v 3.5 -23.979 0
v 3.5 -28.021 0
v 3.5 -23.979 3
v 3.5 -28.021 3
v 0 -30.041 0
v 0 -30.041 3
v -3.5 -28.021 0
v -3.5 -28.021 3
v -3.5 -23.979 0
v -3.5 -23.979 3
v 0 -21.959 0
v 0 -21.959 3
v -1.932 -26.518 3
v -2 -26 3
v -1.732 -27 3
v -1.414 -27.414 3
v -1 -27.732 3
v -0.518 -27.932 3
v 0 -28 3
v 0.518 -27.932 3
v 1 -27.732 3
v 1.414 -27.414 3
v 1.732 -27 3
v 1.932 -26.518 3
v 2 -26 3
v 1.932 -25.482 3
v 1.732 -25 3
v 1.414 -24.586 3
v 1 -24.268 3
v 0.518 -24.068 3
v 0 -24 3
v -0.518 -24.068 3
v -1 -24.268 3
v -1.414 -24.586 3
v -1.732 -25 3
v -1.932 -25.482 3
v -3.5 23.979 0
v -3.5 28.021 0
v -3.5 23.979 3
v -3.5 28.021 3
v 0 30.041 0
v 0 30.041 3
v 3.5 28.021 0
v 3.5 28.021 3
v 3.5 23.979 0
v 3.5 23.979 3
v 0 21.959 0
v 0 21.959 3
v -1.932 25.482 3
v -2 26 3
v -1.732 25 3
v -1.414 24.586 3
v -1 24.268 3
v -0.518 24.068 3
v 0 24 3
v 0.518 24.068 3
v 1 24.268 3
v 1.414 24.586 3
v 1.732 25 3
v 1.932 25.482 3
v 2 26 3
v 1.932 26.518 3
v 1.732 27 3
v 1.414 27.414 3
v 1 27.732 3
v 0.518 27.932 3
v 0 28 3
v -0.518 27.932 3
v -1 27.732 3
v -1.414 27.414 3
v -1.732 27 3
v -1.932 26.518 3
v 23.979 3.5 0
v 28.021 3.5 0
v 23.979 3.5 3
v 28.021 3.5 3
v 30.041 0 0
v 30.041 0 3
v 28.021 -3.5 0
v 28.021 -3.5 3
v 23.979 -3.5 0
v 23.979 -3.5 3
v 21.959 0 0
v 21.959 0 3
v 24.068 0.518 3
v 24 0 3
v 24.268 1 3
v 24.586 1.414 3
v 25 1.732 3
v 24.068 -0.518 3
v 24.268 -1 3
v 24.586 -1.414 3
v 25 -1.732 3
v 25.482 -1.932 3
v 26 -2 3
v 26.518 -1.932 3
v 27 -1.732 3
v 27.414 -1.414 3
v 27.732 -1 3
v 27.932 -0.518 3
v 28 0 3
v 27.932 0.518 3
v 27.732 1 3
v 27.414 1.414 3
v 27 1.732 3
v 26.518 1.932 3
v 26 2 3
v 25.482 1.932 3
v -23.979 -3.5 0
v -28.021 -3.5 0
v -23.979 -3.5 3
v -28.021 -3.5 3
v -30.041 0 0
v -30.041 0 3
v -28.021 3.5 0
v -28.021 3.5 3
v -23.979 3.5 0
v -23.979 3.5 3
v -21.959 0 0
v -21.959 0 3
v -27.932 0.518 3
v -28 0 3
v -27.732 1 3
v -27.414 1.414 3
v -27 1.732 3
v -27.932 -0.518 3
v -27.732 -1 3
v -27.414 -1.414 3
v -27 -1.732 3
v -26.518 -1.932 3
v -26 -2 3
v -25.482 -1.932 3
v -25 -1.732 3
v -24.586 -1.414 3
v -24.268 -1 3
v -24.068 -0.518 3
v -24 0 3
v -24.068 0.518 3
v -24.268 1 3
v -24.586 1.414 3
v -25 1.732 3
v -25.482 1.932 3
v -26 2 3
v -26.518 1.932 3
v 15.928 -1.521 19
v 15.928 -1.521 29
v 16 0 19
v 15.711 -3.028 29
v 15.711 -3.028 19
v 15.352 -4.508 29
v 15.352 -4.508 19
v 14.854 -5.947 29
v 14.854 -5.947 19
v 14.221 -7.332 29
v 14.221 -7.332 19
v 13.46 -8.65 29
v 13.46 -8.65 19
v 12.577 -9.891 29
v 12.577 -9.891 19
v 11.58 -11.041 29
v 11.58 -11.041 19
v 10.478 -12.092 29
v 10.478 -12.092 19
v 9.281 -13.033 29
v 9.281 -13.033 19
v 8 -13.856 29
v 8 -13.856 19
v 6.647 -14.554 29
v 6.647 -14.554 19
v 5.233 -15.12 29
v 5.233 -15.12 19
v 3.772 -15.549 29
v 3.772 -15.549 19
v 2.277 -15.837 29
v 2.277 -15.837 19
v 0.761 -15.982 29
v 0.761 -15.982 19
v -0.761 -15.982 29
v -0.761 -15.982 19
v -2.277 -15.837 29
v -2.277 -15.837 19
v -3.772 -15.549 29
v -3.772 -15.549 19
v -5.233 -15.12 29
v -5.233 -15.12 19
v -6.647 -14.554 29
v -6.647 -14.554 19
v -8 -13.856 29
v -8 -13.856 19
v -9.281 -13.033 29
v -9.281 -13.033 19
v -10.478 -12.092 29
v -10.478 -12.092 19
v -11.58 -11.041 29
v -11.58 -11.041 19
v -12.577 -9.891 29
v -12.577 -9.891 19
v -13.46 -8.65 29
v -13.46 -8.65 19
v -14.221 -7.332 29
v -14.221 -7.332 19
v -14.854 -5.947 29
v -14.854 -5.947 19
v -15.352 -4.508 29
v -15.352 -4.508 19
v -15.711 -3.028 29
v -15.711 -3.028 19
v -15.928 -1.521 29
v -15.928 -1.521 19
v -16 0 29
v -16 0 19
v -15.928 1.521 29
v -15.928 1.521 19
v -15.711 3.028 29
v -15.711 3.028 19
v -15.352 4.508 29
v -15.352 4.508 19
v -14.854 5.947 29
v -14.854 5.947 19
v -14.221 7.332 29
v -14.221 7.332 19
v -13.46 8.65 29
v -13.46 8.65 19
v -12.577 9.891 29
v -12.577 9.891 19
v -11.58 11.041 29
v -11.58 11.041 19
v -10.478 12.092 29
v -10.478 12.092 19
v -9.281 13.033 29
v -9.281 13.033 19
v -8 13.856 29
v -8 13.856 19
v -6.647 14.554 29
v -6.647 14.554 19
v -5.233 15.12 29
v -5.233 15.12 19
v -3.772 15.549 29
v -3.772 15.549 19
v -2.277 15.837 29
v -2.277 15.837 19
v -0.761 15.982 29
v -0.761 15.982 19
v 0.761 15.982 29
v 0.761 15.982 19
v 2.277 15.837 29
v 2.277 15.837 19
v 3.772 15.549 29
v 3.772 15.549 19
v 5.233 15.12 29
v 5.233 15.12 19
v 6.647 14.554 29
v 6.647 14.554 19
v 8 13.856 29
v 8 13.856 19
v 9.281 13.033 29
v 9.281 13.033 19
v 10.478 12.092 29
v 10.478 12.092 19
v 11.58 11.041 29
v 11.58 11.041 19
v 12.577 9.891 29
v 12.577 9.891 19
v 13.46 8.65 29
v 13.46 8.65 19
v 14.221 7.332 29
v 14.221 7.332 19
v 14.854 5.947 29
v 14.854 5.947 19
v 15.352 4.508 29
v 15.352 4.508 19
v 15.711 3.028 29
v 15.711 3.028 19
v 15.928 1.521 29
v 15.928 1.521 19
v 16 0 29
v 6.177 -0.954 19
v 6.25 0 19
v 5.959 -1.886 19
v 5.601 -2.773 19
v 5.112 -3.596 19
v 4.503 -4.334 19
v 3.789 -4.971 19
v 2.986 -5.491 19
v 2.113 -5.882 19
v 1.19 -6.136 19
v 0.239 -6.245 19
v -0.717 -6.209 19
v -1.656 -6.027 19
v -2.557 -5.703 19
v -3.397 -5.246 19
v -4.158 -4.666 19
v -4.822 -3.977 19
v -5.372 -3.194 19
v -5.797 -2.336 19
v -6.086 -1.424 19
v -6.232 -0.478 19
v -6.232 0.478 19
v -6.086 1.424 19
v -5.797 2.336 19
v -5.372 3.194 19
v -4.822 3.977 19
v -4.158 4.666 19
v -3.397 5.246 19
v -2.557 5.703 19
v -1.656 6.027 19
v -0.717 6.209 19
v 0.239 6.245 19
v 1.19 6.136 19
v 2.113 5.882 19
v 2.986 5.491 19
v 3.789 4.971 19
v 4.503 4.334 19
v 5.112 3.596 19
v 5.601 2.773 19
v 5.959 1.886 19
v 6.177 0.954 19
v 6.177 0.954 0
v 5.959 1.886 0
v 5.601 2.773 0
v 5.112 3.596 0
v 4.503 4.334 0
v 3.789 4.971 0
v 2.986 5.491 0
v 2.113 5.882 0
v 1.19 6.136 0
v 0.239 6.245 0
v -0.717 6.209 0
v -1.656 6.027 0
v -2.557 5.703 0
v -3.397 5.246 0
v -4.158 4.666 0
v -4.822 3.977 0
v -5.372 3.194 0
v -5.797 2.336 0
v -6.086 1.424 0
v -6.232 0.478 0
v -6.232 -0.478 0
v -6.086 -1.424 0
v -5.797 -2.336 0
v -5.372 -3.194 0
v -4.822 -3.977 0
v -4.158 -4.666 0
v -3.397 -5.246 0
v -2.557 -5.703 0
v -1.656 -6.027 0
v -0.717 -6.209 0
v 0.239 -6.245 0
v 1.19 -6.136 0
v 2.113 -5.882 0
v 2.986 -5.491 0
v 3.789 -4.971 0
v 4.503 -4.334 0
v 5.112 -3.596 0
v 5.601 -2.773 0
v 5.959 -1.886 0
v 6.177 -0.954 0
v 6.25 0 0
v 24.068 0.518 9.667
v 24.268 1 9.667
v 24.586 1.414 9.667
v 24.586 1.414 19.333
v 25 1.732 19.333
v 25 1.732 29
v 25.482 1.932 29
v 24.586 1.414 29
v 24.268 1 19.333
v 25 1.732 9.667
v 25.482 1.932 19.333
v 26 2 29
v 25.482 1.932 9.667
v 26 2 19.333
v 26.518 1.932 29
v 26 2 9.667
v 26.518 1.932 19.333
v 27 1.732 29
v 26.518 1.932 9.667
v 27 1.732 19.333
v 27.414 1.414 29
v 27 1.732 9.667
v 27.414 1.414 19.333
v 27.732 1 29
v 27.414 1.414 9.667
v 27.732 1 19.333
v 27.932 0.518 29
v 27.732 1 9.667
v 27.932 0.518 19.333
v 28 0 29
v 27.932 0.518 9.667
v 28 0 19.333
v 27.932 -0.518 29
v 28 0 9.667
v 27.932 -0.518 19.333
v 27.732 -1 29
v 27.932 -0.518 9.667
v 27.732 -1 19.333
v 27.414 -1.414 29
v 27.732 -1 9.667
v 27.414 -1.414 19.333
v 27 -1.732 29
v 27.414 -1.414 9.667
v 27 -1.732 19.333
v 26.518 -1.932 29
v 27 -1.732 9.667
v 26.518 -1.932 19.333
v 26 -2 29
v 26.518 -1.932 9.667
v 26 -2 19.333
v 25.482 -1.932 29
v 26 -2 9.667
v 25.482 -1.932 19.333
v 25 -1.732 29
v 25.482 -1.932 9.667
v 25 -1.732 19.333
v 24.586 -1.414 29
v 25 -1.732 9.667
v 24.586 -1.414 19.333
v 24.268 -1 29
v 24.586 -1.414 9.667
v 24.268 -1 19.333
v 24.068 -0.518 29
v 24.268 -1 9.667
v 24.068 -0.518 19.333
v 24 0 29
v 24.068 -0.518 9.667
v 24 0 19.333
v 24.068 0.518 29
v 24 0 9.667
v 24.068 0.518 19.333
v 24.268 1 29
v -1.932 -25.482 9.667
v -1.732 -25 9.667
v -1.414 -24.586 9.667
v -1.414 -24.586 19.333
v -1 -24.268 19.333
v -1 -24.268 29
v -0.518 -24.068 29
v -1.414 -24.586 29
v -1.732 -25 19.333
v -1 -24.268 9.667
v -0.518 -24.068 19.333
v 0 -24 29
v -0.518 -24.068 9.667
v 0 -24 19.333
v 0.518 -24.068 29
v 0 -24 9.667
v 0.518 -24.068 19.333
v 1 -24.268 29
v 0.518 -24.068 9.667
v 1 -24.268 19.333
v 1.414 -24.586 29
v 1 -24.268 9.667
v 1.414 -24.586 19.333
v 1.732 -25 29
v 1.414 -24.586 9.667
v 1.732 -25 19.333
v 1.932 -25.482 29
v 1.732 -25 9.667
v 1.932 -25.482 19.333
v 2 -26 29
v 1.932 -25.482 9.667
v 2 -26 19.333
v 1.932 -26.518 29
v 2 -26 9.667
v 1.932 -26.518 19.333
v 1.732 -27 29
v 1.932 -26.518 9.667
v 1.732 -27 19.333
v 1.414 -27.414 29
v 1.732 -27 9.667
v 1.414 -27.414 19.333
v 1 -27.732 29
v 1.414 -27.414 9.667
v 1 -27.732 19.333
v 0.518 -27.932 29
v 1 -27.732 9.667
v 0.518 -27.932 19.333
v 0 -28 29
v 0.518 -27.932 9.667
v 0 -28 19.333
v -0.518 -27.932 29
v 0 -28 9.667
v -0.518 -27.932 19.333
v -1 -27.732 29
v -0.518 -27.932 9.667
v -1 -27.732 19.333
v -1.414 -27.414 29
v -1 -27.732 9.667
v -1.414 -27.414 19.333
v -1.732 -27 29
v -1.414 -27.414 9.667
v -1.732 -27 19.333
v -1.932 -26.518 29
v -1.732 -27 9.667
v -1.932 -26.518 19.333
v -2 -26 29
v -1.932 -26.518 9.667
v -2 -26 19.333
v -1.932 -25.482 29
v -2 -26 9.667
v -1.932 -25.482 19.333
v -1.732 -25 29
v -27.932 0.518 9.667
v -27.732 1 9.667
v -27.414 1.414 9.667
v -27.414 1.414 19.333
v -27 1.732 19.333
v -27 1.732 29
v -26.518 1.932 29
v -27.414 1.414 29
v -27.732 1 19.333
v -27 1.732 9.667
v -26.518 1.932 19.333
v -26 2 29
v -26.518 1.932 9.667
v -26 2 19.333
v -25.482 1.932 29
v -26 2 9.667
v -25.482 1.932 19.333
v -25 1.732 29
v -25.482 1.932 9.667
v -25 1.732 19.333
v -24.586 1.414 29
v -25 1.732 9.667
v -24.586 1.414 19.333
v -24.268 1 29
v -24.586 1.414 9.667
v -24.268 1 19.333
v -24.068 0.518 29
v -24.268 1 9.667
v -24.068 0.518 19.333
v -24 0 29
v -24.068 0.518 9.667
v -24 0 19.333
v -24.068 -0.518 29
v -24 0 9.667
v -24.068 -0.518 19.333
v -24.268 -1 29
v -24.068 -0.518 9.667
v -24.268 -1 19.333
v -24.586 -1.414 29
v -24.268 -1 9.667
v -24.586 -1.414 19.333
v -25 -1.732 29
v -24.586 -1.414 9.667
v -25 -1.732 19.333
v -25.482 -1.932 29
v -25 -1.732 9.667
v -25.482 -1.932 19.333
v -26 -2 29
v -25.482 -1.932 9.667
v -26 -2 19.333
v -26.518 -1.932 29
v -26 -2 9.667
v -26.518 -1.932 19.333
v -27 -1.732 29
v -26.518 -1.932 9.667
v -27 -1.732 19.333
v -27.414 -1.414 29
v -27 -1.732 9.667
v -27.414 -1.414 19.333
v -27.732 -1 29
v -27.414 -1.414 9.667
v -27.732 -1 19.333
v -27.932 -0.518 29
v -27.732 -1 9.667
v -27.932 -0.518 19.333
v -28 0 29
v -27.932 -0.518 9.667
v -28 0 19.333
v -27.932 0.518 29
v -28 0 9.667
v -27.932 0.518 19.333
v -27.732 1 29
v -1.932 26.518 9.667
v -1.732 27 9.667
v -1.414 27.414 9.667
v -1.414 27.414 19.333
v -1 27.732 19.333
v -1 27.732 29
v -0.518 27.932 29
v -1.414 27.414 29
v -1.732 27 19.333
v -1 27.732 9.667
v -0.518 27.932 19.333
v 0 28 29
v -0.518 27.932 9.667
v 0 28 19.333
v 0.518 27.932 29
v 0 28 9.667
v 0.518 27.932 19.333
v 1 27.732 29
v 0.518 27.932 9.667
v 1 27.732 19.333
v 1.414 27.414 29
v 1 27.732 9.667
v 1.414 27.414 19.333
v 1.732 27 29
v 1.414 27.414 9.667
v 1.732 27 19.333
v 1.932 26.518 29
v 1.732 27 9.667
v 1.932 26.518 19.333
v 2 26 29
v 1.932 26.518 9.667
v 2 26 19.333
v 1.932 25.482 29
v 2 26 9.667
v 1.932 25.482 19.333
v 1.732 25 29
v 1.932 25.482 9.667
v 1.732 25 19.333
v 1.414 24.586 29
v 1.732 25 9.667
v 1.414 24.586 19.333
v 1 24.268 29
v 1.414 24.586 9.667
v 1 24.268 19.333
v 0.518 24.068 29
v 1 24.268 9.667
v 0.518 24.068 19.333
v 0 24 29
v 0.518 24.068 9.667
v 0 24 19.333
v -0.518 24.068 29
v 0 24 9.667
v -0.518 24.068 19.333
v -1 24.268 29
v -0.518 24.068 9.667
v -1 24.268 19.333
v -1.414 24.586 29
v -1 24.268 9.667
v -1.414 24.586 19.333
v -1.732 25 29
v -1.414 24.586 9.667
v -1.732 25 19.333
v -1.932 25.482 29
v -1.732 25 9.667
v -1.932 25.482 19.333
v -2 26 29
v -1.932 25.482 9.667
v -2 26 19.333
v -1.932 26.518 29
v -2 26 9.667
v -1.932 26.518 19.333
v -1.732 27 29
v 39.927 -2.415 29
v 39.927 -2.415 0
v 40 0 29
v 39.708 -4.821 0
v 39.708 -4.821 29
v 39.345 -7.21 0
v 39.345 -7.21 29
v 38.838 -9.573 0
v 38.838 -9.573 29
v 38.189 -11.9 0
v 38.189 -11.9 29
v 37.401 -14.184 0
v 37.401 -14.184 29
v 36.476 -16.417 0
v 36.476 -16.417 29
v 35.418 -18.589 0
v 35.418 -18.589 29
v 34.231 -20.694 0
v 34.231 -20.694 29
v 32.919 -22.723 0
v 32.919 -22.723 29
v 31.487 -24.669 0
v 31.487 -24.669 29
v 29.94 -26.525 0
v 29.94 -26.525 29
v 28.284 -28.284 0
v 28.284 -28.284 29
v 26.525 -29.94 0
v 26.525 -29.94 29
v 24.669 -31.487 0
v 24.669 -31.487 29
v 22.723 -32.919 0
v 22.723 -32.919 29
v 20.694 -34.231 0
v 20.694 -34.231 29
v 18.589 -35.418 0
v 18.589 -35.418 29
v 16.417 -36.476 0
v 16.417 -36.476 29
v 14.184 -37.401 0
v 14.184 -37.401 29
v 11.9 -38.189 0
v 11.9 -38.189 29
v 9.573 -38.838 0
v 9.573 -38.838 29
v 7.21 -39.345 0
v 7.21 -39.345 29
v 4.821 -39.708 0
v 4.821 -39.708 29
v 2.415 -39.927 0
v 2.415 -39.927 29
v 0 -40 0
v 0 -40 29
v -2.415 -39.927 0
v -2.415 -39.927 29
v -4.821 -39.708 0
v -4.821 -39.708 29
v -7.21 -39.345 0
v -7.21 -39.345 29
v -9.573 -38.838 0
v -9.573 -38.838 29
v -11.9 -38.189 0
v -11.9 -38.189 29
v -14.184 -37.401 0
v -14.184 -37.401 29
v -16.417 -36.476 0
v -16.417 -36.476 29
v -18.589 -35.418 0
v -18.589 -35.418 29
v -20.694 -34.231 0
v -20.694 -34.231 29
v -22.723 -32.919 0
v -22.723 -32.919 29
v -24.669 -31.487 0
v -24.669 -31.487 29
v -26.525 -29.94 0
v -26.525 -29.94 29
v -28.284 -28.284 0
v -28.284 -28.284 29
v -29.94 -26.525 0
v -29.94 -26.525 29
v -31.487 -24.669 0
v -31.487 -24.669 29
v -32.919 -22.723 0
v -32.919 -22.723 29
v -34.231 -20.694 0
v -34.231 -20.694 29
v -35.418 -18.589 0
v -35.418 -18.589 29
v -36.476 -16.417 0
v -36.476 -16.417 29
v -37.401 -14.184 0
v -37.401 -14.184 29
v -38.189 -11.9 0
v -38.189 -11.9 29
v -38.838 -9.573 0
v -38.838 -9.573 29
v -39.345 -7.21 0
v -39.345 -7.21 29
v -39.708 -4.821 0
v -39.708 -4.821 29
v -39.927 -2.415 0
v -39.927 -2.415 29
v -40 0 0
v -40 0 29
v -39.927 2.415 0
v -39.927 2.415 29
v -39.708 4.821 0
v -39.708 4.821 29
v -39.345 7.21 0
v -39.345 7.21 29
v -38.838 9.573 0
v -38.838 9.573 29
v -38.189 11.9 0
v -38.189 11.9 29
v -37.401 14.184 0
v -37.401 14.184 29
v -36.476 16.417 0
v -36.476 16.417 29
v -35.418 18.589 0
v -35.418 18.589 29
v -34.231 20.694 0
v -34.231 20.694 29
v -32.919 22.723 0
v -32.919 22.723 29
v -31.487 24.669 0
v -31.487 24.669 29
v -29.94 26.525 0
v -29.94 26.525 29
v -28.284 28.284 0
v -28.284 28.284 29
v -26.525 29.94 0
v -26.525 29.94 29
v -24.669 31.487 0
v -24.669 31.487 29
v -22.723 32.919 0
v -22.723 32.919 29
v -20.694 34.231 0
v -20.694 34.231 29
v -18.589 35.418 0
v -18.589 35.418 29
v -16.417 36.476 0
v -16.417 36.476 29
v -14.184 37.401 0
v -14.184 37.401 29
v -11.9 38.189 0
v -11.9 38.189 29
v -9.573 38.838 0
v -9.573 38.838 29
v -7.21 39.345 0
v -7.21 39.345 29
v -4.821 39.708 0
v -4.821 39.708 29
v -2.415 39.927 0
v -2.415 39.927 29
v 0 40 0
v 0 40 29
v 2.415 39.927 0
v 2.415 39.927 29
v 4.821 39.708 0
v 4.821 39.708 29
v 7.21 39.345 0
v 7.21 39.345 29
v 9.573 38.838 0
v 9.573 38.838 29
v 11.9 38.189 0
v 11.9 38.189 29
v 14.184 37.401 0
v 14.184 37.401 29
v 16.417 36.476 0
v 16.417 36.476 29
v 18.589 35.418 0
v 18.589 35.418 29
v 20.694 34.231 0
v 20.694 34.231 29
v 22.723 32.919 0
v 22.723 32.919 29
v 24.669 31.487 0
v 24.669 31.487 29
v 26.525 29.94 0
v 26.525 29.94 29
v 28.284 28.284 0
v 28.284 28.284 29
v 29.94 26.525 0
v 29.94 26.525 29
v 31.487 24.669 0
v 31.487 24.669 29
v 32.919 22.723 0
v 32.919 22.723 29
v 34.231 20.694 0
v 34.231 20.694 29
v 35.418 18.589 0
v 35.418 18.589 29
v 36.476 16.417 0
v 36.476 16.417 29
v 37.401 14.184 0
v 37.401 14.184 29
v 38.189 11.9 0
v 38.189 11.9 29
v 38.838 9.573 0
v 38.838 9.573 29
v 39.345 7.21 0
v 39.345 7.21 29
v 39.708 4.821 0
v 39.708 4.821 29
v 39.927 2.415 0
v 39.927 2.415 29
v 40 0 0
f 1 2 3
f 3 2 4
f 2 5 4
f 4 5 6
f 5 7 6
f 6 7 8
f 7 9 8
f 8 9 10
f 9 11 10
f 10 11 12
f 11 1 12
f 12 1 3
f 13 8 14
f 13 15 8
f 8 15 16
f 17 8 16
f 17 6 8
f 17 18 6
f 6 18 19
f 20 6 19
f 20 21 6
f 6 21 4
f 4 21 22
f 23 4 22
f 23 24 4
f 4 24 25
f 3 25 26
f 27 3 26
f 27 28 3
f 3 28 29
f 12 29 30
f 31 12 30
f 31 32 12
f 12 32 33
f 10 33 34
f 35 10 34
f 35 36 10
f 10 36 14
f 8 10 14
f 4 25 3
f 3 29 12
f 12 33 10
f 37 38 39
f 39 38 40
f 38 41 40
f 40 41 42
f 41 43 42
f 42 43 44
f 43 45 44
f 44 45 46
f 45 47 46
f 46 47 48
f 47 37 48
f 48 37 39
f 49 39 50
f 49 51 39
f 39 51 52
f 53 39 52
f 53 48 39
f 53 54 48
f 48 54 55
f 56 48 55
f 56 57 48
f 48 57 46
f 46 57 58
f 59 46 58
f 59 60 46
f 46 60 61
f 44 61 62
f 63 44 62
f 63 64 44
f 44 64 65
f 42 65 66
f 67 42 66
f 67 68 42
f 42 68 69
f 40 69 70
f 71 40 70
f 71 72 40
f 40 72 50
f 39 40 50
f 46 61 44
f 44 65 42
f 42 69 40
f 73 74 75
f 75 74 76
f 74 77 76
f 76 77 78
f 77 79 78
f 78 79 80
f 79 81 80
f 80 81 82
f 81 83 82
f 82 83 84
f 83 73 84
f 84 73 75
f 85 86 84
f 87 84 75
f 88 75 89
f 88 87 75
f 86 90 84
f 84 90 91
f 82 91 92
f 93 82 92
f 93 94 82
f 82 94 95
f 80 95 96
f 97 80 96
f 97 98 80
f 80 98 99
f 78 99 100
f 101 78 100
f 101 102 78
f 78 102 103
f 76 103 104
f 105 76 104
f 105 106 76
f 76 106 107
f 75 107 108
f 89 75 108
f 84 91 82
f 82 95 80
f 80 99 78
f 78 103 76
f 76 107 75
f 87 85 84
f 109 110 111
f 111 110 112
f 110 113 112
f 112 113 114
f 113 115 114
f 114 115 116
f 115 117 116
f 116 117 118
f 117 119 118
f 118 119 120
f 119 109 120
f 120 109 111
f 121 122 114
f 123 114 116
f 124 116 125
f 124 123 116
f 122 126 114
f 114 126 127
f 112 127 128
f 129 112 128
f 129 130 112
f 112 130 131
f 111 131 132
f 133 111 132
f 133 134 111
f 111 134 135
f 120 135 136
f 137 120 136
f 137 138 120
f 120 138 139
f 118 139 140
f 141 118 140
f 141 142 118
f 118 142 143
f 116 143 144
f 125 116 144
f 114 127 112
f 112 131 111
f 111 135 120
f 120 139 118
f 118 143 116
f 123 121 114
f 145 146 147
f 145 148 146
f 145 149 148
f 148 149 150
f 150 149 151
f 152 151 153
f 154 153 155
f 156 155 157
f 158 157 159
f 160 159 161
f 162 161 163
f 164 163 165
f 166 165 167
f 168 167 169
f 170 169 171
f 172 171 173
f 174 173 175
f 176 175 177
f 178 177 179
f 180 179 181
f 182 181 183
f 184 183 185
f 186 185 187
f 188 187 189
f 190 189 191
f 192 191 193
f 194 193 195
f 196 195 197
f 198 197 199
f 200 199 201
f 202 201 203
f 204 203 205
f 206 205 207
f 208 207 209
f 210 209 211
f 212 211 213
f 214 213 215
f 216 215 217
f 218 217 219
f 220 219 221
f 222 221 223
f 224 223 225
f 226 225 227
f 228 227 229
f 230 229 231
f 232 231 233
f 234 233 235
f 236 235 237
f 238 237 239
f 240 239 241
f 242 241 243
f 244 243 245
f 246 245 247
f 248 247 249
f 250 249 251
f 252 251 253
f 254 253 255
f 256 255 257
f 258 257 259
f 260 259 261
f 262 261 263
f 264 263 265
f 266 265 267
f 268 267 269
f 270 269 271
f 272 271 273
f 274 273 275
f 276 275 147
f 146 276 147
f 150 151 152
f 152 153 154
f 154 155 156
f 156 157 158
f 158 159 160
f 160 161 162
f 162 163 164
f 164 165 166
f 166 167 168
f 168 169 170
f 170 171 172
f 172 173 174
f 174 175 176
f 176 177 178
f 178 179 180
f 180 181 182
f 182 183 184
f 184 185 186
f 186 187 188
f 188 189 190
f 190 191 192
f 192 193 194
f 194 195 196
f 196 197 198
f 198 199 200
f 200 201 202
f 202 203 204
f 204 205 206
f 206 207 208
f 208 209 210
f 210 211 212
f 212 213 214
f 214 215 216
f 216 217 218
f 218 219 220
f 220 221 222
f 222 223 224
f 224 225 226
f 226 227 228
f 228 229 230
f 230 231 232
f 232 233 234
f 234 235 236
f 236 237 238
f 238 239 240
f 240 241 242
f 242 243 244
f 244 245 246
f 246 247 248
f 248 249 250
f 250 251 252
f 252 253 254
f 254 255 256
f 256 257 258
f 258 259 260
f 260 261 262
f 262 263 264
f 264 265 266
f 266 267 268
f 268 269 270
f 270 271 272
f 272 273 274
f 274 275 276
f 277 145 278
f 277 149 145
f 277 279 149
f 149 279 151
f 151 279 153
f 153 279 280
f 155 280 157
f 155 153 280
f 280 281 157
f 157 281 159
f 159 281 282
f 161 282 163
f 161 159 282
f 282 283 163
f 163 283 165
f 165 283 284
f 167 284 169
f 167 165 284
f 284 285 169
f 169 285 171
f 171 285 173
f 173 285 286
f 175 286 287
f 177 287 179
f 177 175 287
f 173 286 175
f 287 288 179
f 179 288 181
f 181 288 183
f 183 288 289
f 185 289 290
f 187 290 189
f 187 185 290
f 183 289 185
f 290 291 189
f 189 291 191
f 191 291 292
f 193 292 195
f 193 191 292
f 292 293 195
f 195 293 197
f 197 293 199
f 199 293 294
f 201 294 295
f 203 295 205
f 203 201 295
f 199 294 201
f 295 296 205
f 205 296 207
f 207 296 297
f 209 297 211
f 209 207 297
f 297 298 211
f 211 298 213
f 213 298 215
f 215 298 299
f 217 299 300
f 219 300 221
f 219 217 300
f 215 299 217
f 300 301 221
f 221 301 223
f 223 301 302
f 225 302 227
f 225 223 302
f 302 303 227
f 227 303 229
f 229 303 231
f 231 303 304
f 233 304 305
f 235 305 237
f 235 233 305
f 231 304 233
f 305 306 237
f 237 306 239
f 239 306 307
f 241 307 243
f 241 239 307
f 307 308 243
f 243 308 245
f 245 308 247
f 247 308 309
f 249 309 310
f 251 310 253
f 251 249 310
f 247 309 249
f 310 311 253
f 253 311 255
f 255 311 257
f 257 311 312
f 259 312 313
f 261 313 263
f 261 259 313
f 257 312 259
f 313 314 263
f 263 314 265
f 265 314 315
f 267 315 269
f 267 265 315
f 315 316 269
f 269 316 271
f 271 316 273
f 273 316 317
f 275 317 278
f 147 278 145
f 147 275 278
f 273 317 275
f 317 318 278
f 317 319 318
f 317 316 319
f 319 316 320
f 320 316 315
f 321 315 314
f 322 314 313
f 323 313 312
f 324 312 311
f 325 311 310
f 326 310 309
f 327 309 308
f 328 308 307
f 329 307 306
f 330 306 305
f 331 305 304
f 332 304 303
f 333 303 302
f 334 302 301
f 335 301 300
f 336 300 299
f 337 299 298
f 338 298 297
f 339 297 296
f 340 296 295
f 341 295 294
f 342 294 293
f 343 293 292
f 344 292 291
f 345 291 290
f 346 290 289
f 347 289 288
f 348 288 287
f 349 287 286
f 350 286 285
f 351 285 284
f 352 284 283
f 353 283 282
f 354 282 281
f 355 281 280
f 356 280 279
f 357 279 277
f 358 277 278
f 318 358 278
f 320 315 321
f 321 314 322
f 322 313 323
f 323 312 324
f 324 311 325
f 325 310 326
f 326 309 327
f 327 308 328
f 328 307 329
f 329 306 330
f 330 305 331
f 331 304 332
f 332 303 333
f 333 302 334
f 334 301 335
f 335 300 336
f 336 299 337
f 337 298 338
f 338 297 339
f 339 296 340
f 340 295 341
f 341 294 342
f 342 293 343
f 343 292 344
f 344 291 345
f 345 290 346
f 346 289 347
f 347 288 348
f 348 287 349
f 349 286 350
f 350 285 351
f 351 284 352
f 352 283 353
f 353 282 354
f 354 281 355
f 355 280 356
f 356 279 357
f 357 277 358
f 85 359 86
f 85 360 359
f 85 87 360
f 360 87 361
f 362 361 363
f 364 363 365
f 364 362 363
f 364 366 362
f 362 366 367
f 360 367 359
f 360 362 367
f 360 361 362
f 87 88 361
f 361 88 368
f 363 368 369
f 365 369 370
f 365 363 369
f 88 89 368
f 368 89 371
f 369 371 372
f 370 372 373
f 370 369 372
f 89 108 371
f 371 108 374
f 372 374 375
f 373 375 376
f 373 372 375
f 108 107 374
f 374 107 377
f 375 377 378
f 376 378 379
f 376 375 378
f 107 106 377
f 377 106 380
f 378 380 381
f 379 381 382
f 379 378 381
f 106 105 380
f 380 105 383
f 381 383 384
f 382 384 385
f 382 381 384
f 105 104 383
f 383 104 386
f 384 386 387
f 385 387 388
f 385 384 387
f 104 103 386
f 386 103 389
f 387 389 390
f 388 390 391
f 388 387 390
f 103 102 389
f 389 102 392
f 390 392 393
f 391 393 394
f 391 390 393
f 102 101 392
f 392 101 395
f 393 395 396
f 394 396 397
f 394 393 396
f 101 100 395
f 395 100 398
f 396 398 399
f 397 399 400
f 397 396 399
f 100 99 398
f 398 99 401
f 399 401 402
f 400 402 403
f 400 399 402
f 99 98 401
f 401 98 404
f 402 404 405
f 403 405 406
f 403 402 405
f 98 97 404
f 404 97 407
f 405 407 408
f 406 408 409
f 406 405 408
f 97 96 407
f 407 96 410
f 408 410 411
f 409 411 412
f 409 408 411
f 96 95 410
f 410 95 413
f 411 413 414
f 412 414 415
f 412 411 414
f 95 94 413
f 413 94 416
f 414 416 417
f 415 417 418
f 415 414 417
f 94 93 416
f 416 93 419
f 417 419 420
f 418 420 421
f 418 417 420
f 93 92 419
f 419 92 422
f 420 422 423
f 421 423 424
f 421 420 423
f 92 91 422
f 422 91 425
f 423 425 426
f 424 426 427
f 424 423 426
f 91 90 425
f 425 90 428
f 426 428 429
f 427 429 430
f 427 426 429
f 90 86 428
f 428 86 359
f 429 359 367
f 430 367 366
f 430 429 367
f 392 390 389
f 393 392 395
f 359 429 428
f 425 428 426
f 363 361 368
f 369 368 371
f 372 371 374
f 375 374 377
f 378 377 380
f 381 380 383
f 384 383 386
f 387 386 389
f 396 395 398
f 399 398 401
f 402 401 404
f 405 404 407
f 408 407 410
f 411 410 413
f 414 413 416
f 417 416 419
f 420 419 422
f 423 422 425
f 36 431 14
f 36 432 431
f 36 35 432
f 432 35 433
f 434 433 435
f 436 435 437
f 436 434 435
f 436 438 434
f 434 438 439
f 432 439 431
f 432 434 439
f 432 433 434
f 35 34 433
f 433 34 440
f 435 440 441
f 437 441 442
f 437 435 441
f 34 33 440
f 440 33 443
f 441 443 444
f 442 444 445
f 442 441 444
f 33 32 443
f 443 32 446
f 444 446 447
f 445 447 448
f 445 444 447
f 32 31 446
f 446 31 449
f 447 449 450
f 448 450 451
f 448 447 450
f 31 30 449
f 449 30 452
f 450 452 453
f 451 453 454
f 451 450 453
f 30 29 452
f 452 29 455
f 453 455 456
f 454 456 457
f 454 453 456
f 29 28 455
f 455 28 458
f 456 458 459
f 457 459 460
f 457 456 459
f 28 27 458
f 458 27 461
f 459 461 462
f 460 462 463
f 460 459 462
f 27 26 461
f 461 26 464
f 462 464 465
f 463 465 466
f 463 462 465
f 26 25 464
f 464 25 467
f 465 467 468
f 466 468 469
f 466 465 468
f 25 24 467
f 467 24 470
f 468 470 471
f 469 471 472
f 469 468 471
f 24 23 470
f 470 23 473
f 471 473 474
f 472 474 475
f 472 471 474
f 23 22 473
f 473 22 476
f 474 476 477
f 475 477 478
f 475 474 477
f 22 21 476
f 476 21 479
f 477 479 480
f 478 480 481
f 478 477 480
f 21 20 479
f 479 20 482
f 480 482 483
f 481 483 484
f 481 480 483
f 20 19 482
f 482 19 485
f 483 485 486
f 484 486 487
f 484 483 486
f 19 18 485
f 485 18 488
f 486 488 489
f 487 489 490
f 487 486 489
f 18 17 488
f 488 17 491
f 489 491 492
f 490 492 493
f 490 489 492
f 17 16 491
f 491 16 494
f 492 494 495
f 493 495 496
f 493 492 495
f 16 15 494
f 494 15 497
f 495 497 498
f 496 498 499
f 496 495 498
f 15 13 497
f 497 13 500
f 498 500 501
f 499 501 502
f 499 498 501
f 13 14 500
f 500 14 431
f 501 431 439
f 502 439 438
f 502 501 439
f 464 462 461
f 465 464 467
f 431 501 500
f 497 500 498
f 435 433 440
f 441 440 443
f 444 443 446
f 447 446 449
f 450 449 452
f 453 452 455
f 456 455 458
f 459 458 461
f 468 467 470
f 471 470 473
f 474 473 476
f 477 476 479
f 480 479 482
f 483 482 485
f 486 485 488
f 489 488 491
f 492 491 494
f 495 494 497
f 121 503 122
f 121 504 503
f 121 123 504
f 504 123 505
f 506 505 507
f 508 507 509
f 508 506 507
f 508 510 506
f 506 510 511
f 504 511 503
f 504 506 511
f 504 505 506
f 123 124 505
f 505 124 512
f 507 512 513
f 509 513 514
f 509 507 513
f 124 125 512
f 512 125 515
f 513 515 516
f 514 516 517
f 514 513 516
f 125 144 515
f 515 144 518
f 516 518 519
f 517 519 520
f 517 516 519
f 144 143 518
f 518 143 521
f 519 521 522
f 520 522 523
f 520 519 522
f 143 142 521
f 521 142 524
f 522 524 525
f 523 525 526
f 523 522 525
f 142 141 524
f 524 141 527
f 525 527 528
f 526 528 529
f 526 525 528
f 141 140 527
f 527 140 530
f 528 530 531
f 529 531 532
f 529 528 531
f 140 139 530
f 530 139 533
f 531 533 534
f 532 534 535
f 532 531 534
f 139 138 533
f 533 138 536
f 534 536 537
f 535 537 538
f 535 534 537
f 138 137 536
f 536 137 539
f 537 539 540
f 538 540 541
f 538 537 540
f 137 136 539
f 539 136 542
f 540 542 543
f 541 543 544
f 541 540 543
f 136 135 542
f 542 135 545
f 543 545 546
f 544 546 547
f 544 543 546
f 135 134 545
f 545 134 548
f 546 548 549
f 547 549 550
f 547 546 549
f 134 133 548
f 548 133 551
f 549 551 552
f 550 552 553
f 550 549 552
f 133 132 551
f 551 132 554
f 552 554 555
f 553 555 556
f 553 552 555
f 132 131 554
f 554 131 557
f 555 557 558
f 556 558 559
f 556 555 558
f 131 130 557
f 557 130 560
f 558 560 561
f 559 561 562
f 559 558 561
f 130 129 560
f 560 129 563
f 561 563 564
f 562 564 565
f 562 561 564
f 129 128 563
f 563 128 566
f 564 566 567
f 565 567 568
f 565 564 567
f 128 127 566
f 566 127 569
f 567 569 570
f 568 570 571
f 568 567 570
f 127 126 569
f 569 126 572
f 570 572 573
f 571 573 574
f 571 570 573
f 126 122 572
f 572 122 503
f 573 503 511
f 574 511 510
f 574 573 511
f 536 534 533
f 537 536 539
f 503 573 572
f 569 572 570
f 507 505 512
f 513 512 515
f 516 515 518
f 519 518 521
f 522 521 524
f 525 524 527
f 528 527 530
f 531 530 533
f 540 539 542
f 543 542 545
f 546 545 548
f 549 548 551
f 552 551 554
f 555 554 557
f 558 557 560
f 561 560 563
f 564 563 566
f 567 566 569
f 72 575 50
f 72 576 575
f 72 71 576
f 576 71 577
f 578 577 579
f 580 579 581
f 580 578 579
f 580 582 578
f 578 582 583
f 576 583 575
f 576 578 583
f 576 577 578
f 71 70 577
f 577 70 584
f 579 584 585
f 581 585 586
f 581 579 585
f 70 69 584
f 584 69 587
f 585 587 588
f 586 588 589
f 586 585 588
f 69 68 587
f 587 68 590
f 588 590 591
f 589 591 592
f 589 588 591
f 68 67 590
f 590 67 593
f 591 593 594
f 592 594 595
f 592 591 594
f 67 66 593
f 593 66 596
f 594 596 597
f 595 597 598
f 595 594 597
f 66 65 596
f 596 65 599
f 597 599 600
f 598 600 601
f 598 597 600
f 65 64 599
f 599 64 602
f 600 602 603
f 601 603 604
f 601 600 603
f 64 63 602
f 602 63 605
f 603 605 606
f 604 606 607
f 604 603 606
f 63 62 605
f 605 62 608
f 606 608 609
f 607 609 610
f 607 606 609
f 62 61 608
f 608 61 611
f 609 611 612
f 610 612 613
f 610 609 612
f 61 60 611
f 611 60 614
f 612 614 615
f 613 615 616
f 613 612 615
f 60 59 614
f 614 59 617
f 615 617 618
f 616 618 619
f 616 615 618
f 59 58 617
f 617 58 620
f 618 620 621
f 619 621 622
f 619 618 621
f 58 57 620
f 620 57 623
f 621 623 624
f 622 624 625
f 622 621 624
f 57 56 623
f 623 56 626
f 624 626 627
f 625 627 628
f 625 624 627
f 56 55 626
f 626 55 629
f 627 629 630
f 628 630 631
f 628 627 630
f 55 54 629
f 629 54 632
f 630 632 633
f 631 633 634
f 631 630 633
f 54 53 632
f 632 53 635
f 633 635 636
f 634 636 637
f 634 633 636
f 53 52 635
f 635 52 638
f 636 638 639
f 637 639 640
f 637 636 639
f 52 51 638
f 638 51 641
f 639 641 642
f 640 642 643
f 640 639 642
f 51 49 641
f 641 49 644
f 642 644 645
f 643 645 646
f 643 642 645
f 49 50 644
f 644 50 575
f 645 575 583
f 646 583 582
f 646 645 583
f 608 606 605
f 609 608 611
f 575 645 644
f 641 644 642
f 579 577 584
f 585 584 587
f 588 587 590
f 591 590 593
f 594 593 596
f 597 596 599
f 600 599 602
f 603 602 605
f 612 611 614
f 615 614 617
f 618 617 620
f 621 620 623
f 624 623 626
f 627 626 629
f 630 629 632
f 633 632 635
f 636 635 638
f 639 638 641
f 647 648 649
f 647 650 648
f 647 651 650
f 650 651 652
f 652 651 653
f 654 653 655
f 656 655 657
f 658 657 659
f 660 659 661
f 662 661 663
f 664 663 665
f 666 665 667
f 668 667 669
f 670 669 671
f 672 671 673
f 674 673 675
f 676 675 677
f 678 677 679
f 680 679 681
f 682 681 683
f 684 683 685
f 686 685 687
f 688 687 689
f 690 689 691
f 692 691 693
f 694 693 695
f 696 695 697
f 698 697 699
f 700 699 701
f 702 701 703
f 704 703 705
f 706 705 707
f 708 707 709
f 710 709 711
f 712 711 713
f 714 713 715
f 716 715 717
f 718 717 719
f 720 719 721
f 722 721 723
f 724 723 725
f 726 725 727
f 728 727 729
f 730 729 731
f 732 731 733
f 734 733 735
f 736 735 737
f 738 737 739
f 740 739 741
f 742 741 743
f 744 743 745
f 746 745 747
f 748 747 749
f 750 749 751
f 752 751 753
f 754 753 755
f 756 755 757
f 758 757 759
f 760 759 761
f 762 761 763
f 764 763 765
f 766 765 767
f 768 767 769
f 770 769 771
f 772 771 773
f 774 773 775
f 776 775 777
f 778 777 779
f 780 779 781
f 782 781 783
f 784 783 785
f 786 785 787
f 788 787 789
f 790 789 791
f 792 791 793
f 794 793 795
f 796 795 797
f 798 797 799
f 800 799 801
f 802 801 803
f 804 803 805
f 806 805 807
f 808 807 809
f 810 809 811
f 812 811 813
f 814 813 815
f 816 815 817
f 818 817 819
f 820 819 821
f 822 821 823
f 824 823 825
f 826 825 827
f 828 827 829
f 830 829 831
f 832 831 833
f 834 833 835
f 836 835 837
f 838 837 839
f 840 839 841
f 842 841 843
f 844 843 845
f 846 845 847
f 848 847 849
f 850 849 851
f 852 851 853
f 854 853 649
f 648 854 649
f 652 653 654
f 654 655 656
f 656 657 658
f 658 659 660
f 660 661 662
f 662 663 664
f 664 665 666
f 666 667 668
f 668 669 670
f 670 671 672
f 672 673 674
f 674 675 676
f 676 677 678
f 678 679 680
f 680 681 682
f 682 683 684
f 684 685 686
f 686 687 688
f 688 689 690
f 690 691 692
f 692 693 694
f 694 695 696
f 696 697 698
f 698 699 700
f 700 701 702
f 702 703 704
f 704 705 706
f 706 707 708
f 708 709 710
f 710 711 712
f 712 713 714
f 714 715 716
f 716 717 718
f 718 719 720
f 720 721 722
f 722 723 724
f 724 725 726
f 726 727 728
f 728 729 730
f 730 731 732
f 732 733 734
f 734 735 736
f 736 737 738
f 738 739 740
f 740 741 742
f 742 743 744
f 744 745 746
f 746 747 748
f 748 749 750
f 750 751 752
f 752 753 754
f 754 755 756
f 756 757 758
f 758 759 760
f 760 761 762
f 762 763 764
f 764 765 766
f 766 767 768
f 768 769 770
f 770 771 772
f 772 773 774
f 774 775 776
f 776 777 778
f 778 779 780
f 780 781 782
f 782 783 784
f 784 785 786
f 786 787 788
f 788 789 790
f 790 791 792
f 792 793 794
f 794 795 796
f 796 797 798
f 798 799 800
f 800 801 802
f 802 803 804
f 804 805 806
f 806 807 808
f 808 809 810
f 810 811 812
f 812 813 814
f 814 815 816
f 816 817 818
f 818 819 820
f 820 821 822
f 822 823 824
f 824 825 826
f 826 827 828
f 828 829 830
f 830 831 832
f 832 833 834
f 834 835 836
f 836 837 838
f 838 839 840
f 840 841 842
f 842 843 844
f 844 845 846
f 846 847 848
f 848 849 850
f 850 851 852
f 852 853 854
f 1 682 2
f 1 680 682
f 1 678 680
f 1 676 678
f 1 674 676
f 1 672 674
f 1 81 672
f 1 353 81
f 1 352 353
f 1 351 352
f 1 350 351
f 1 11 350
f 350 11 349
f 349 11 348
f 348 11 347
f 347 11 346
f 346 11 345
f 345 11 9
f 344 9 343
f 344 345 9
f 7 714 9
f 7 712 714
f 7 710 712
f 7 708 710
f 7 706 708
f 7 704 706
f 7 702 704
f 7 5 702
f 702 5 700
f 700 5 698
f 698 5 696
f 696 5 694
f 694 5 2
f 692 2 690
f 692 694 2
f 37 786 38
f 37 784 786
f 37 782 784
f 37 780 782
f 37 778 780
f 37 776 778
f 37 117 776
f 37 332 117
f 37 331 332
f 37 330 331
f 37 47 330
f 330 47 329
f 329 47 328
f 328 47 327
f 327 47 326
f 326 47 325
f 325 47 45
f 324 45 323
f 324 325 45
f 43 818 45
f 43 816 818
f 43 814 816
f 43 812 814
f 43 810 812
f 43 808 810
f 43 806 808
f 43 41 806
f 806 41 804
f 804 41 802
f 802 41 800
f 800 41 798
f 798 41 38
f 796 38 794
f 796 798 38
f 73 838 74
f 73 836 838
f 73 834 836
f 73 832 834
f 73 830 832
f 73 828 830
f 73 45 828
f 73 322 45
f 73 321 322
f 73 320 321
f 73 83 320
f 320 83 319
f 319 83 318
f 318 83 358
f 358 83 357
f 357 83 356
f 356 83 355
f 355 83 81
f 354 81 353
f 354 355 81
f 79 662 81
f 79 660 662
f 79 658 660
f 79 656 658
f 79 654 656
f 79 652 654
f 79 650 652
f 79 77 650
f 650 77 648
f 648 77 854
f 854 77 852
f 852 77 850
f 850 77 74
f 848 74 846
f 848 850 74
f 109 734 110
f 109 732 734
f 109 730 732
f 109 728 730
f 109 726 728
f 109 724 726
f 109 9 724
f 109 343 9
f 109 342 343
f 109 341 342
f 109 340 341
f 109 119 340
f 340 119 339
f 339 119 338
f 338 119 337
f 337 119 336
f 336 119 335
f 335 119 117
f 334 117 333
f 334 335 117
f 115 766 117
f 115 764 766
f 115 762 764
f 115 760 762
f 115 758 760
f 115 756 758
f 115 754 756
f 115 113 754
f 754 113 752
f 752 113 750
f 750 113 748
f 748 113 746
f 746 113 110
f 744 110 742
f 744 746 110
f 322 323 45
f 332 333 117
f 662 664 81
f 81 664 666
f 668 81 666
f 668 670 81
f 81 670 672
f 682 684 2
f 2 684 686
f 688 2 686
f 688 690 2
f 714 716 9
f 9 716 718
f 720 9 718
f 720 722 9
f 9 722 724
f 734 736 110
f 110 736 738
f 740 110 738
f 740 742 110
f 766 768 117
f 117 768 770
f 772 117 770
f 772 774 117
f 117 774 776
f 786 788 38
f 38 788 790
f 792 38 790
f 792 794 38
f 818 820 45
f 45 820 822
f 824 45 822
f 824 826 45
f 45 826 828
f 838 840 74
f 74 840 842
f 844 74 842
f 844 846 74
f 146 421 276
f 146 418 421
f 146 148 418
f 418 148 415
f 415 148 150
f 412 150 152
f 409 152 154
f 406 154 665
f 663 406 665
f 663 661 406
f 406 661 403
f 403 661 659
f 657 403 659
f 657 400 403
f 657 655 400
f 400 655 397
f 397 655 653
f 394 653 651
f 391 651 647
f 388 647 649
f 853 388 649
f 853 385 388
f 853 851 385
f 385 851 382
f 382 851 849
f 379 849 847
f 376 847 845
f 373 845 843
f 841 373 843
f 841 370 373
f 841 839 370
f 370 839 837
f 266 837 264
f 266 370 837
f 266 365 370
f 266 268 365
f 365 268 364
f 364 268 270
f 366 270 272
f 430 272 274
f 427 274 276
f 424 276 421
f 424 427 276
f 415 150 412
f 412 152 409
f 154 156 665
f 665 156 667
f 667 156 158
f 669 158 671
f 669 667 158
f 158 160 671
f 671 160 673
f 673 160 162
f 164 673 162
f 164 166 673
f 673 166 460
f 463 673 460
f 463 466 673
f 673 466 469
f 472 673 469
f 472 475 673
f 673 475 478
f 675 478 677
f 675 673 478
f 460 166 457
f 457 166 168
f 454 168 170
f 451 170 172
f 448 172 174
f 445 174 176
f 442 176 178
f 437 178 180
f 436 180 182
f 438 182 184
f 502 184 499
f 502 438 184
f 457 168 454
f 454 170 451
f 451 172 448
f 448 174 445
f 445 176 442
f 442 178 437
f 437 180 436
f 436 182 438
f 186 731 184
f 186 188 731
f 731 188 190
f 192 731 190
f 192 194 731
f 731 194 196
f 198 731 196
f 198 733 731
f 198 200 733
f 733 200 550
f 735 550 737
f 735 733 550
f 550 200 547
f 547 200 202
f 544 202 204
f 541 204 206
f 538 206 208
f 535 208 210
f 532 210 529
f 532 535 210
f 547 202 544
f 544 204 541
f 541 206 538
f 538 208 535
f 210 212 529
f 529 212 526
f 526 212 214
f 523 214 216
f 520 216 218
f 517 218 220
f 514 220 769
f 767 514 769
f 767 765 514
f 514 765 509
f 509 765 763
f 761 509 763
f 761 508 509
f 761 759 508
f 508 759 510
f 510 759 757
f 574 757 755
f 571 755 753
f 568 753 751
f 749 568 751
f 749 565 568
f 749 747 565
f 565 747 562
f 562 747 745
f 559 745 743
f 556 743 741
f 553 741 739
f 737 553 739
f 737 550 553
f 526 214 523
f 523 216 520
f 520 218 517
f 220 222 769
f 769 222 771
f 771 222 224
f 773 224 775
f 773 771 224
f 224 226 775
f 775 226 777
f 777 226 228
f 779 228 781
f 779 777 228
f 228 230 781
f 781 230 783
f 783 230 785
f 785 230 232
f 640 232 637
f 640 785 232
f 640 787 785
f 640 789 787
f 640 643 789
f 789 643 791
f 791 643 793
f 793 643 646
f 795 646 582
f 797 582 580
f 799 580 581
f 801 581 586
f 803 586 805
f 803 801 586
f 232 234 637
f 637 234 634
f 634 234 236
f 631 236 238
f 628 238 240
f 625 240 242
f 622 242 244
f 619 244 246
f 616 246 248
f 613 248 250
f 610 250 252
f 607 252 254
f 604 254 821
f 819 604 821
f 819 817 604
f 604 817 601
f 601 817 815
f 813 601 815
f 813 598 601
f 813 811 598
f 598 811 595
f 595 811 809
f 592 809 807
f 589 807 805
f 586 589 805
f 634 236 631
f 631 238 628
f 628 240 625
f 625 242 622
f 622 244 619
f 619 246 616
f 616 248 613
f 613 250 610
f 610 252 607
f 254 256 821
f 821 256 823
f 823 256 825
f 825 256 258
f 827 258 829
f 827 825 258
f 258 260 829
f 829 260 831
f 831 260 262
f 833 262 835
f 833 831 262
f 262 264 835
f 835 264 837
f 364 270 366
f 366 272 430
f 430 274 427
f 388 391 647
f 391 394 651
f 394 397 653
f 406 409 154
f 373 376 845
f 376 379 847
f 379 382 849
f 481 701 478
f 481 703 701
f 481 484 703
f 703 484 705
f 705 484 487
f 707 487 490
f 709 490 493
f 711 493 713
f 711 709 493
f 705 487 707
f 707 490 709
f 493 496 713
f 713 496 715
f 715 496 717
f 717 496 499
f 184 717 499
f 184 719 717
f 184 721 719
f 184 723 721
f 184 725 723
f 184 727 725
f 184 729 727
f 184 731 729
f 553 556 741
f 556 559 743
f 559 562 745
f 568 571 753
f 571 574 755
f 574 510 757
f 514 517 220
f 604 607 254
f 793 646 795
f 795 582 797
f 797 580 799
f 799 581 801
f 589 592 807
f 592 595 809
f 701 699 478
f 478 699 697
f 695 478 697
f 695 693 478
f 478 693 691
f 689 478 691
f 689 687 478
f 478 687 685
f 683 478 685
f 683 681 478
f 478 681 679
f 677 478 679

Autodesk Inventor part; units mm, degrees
ref_plane "YZ Plane" through (0, 0, 0) normal (1, 0, 0) x (0, 1, 0)
ref_plane "XZ Plane" through (0, 0, 0) normal (0, 1, 0) x (-1, 0, 0)
ref_plane "XY Plane" through (0, 0, 0) normal (0, 0, 1) x (1, 0, 0)
sketch "Esquisse1" plane through (0, 0, 0) normal (0, 0, 1) x (1, 0, 0)
  circle A0 centre (0, 0) radius 40
  circle A1 centre (0, 0) radius 6.25
  line L0 (0, 0) -> (16.25, 0) construction
  circle A2 centre (0, 0) radius 16.25 construction
  line L1 (6.25, 0) -> (16.25, 0) construction
  line L2 (0, 0) -> (0, 26) construction
  circle A3 centre (0, 26) radius 2
  circle A4 centre (-26, 0) radius 2
  circle A5 centre (0, -26) radius 2
  circle A6 centre (26, 0) radius 2
  dimension "d1" = 12.5
  dimension "d0" = 80
  dimension "d3" = 10
  dimension "d5" = 4
  dimension "d6" = 26
  dimension "d9" = 360
extrude "Extrusion1" add sketch "Esquisse1" along normal blind 29
sketch "Esquisse2" plane through (0, 0, 29) normal (0, 0, 1) x (1, 0, 0)
  circle A0 centre (0, 0) radius 6.25 projected
  circle A1 centre (0, 0) radius 40 projected
  circle A2 centre (0, 0) radius 16
  line L0 (0, 0) -> (-16, 0) construction
  dimension "d41" = 16
extrude "Extrusion2" cut sketch "Esquisse2" against normal blind 10 contours A2
sketch "Esquisse3" plane through (0, 0, 0) normal (0, 0, -1) x (-1, 0, 0)
  circle A0 centre (0, 0) radius 6.25 projected
  circle A1 centre (-26, 0) radius 2 projected
  circle A2 centre (0, -26) radius 2 projected
  circle A3 centre (26, 0) radius 2 projected
  circle A4 centre (0, 26) radius 2 projected
  circle A5 centre (0, 0) radius 40 projected
  line L0 (3.5, 23.9793) -> (0, 21.9585)
  line L1 (0, 21.9585) -> (-3.5, 23.9793)
  line L2 (-3.5, 23.9793) -> (-3.5, 28.0207)
  line L3 (-3.5, 28.0207) -> (0, 30.0415)
  line L4 (0, 30.0415) -> (3.5, 28.0207)
  line L5 (3.5, 28.0207) -> (3.5, 23.9793)
  line L6 (-3.5, 23.9793) -> (3.5, 23.9793) construction
  line L7 (0, 0) -> (0, -40) construction
  line L8 (-23.9793, 3.5) -> (-21.9585, 0)
  line L9 (-21.9585, 0) -> (-23.9793, -3.5)
  line L10 (-23.9793, -3.5) -> (-28.0207, -3.5)
  line L11 (-28.0207, -3.5) -> (-30.0415, 0)
  line L12 (-30.0415, 0) -> (-28.0207, 3.5)
  line L13 (-28.0207, 3.5) -> (-23.9793, 3.5)
  line L14 (-3.5, -23.9793) -> (0, -21.9585)
  line L15 (0, -21.9585) -> (3.5, -23.9793)
  line L16 (3.5, -23.9793) -> (3.5, -28.0207)
  line L17 (3.5, -28.0207) -> (0, -30.0415)
  line L18 (0, -30.0415) -> (-3.5, -28.0207)
  line L19 (-3.5, -28.0207) -> (-3.5, -23.9793)
  line L20 (23.9793, -3.5) -> (21.9585, 0)
  line L21 (21.9585, 0) -> (23.9793, 3.5)
  line L22 (23.9793, 3.5) -> (28.0207, 3.5)
  line L23 (28.0207, 3.5) -> (30.0415, 0)
  line L24 (30.0415, 0) -> (28.0207, -3.5)
  line L25 (28.0207, -3.5) -> (23.9793, -3.5)
  point P0 (-23.9793, 3.5)
  point P1 (-3.5, -23.9793)
  point P2 (23.9793, -3.5)
  dimension "d18" = 7
  dimension "d21" = 360
extrude "Extrusion3" cut sketch "Esquisse3" against normal blind 3 contours L0 L1 L2 L3 L4 L5 | L8 L9 L10 L11 L12 L13 | L14 L15 L16 L17 L18 L19 | L20 L21 L22 L23 L24 L25
properties part number "bowl_v2"
